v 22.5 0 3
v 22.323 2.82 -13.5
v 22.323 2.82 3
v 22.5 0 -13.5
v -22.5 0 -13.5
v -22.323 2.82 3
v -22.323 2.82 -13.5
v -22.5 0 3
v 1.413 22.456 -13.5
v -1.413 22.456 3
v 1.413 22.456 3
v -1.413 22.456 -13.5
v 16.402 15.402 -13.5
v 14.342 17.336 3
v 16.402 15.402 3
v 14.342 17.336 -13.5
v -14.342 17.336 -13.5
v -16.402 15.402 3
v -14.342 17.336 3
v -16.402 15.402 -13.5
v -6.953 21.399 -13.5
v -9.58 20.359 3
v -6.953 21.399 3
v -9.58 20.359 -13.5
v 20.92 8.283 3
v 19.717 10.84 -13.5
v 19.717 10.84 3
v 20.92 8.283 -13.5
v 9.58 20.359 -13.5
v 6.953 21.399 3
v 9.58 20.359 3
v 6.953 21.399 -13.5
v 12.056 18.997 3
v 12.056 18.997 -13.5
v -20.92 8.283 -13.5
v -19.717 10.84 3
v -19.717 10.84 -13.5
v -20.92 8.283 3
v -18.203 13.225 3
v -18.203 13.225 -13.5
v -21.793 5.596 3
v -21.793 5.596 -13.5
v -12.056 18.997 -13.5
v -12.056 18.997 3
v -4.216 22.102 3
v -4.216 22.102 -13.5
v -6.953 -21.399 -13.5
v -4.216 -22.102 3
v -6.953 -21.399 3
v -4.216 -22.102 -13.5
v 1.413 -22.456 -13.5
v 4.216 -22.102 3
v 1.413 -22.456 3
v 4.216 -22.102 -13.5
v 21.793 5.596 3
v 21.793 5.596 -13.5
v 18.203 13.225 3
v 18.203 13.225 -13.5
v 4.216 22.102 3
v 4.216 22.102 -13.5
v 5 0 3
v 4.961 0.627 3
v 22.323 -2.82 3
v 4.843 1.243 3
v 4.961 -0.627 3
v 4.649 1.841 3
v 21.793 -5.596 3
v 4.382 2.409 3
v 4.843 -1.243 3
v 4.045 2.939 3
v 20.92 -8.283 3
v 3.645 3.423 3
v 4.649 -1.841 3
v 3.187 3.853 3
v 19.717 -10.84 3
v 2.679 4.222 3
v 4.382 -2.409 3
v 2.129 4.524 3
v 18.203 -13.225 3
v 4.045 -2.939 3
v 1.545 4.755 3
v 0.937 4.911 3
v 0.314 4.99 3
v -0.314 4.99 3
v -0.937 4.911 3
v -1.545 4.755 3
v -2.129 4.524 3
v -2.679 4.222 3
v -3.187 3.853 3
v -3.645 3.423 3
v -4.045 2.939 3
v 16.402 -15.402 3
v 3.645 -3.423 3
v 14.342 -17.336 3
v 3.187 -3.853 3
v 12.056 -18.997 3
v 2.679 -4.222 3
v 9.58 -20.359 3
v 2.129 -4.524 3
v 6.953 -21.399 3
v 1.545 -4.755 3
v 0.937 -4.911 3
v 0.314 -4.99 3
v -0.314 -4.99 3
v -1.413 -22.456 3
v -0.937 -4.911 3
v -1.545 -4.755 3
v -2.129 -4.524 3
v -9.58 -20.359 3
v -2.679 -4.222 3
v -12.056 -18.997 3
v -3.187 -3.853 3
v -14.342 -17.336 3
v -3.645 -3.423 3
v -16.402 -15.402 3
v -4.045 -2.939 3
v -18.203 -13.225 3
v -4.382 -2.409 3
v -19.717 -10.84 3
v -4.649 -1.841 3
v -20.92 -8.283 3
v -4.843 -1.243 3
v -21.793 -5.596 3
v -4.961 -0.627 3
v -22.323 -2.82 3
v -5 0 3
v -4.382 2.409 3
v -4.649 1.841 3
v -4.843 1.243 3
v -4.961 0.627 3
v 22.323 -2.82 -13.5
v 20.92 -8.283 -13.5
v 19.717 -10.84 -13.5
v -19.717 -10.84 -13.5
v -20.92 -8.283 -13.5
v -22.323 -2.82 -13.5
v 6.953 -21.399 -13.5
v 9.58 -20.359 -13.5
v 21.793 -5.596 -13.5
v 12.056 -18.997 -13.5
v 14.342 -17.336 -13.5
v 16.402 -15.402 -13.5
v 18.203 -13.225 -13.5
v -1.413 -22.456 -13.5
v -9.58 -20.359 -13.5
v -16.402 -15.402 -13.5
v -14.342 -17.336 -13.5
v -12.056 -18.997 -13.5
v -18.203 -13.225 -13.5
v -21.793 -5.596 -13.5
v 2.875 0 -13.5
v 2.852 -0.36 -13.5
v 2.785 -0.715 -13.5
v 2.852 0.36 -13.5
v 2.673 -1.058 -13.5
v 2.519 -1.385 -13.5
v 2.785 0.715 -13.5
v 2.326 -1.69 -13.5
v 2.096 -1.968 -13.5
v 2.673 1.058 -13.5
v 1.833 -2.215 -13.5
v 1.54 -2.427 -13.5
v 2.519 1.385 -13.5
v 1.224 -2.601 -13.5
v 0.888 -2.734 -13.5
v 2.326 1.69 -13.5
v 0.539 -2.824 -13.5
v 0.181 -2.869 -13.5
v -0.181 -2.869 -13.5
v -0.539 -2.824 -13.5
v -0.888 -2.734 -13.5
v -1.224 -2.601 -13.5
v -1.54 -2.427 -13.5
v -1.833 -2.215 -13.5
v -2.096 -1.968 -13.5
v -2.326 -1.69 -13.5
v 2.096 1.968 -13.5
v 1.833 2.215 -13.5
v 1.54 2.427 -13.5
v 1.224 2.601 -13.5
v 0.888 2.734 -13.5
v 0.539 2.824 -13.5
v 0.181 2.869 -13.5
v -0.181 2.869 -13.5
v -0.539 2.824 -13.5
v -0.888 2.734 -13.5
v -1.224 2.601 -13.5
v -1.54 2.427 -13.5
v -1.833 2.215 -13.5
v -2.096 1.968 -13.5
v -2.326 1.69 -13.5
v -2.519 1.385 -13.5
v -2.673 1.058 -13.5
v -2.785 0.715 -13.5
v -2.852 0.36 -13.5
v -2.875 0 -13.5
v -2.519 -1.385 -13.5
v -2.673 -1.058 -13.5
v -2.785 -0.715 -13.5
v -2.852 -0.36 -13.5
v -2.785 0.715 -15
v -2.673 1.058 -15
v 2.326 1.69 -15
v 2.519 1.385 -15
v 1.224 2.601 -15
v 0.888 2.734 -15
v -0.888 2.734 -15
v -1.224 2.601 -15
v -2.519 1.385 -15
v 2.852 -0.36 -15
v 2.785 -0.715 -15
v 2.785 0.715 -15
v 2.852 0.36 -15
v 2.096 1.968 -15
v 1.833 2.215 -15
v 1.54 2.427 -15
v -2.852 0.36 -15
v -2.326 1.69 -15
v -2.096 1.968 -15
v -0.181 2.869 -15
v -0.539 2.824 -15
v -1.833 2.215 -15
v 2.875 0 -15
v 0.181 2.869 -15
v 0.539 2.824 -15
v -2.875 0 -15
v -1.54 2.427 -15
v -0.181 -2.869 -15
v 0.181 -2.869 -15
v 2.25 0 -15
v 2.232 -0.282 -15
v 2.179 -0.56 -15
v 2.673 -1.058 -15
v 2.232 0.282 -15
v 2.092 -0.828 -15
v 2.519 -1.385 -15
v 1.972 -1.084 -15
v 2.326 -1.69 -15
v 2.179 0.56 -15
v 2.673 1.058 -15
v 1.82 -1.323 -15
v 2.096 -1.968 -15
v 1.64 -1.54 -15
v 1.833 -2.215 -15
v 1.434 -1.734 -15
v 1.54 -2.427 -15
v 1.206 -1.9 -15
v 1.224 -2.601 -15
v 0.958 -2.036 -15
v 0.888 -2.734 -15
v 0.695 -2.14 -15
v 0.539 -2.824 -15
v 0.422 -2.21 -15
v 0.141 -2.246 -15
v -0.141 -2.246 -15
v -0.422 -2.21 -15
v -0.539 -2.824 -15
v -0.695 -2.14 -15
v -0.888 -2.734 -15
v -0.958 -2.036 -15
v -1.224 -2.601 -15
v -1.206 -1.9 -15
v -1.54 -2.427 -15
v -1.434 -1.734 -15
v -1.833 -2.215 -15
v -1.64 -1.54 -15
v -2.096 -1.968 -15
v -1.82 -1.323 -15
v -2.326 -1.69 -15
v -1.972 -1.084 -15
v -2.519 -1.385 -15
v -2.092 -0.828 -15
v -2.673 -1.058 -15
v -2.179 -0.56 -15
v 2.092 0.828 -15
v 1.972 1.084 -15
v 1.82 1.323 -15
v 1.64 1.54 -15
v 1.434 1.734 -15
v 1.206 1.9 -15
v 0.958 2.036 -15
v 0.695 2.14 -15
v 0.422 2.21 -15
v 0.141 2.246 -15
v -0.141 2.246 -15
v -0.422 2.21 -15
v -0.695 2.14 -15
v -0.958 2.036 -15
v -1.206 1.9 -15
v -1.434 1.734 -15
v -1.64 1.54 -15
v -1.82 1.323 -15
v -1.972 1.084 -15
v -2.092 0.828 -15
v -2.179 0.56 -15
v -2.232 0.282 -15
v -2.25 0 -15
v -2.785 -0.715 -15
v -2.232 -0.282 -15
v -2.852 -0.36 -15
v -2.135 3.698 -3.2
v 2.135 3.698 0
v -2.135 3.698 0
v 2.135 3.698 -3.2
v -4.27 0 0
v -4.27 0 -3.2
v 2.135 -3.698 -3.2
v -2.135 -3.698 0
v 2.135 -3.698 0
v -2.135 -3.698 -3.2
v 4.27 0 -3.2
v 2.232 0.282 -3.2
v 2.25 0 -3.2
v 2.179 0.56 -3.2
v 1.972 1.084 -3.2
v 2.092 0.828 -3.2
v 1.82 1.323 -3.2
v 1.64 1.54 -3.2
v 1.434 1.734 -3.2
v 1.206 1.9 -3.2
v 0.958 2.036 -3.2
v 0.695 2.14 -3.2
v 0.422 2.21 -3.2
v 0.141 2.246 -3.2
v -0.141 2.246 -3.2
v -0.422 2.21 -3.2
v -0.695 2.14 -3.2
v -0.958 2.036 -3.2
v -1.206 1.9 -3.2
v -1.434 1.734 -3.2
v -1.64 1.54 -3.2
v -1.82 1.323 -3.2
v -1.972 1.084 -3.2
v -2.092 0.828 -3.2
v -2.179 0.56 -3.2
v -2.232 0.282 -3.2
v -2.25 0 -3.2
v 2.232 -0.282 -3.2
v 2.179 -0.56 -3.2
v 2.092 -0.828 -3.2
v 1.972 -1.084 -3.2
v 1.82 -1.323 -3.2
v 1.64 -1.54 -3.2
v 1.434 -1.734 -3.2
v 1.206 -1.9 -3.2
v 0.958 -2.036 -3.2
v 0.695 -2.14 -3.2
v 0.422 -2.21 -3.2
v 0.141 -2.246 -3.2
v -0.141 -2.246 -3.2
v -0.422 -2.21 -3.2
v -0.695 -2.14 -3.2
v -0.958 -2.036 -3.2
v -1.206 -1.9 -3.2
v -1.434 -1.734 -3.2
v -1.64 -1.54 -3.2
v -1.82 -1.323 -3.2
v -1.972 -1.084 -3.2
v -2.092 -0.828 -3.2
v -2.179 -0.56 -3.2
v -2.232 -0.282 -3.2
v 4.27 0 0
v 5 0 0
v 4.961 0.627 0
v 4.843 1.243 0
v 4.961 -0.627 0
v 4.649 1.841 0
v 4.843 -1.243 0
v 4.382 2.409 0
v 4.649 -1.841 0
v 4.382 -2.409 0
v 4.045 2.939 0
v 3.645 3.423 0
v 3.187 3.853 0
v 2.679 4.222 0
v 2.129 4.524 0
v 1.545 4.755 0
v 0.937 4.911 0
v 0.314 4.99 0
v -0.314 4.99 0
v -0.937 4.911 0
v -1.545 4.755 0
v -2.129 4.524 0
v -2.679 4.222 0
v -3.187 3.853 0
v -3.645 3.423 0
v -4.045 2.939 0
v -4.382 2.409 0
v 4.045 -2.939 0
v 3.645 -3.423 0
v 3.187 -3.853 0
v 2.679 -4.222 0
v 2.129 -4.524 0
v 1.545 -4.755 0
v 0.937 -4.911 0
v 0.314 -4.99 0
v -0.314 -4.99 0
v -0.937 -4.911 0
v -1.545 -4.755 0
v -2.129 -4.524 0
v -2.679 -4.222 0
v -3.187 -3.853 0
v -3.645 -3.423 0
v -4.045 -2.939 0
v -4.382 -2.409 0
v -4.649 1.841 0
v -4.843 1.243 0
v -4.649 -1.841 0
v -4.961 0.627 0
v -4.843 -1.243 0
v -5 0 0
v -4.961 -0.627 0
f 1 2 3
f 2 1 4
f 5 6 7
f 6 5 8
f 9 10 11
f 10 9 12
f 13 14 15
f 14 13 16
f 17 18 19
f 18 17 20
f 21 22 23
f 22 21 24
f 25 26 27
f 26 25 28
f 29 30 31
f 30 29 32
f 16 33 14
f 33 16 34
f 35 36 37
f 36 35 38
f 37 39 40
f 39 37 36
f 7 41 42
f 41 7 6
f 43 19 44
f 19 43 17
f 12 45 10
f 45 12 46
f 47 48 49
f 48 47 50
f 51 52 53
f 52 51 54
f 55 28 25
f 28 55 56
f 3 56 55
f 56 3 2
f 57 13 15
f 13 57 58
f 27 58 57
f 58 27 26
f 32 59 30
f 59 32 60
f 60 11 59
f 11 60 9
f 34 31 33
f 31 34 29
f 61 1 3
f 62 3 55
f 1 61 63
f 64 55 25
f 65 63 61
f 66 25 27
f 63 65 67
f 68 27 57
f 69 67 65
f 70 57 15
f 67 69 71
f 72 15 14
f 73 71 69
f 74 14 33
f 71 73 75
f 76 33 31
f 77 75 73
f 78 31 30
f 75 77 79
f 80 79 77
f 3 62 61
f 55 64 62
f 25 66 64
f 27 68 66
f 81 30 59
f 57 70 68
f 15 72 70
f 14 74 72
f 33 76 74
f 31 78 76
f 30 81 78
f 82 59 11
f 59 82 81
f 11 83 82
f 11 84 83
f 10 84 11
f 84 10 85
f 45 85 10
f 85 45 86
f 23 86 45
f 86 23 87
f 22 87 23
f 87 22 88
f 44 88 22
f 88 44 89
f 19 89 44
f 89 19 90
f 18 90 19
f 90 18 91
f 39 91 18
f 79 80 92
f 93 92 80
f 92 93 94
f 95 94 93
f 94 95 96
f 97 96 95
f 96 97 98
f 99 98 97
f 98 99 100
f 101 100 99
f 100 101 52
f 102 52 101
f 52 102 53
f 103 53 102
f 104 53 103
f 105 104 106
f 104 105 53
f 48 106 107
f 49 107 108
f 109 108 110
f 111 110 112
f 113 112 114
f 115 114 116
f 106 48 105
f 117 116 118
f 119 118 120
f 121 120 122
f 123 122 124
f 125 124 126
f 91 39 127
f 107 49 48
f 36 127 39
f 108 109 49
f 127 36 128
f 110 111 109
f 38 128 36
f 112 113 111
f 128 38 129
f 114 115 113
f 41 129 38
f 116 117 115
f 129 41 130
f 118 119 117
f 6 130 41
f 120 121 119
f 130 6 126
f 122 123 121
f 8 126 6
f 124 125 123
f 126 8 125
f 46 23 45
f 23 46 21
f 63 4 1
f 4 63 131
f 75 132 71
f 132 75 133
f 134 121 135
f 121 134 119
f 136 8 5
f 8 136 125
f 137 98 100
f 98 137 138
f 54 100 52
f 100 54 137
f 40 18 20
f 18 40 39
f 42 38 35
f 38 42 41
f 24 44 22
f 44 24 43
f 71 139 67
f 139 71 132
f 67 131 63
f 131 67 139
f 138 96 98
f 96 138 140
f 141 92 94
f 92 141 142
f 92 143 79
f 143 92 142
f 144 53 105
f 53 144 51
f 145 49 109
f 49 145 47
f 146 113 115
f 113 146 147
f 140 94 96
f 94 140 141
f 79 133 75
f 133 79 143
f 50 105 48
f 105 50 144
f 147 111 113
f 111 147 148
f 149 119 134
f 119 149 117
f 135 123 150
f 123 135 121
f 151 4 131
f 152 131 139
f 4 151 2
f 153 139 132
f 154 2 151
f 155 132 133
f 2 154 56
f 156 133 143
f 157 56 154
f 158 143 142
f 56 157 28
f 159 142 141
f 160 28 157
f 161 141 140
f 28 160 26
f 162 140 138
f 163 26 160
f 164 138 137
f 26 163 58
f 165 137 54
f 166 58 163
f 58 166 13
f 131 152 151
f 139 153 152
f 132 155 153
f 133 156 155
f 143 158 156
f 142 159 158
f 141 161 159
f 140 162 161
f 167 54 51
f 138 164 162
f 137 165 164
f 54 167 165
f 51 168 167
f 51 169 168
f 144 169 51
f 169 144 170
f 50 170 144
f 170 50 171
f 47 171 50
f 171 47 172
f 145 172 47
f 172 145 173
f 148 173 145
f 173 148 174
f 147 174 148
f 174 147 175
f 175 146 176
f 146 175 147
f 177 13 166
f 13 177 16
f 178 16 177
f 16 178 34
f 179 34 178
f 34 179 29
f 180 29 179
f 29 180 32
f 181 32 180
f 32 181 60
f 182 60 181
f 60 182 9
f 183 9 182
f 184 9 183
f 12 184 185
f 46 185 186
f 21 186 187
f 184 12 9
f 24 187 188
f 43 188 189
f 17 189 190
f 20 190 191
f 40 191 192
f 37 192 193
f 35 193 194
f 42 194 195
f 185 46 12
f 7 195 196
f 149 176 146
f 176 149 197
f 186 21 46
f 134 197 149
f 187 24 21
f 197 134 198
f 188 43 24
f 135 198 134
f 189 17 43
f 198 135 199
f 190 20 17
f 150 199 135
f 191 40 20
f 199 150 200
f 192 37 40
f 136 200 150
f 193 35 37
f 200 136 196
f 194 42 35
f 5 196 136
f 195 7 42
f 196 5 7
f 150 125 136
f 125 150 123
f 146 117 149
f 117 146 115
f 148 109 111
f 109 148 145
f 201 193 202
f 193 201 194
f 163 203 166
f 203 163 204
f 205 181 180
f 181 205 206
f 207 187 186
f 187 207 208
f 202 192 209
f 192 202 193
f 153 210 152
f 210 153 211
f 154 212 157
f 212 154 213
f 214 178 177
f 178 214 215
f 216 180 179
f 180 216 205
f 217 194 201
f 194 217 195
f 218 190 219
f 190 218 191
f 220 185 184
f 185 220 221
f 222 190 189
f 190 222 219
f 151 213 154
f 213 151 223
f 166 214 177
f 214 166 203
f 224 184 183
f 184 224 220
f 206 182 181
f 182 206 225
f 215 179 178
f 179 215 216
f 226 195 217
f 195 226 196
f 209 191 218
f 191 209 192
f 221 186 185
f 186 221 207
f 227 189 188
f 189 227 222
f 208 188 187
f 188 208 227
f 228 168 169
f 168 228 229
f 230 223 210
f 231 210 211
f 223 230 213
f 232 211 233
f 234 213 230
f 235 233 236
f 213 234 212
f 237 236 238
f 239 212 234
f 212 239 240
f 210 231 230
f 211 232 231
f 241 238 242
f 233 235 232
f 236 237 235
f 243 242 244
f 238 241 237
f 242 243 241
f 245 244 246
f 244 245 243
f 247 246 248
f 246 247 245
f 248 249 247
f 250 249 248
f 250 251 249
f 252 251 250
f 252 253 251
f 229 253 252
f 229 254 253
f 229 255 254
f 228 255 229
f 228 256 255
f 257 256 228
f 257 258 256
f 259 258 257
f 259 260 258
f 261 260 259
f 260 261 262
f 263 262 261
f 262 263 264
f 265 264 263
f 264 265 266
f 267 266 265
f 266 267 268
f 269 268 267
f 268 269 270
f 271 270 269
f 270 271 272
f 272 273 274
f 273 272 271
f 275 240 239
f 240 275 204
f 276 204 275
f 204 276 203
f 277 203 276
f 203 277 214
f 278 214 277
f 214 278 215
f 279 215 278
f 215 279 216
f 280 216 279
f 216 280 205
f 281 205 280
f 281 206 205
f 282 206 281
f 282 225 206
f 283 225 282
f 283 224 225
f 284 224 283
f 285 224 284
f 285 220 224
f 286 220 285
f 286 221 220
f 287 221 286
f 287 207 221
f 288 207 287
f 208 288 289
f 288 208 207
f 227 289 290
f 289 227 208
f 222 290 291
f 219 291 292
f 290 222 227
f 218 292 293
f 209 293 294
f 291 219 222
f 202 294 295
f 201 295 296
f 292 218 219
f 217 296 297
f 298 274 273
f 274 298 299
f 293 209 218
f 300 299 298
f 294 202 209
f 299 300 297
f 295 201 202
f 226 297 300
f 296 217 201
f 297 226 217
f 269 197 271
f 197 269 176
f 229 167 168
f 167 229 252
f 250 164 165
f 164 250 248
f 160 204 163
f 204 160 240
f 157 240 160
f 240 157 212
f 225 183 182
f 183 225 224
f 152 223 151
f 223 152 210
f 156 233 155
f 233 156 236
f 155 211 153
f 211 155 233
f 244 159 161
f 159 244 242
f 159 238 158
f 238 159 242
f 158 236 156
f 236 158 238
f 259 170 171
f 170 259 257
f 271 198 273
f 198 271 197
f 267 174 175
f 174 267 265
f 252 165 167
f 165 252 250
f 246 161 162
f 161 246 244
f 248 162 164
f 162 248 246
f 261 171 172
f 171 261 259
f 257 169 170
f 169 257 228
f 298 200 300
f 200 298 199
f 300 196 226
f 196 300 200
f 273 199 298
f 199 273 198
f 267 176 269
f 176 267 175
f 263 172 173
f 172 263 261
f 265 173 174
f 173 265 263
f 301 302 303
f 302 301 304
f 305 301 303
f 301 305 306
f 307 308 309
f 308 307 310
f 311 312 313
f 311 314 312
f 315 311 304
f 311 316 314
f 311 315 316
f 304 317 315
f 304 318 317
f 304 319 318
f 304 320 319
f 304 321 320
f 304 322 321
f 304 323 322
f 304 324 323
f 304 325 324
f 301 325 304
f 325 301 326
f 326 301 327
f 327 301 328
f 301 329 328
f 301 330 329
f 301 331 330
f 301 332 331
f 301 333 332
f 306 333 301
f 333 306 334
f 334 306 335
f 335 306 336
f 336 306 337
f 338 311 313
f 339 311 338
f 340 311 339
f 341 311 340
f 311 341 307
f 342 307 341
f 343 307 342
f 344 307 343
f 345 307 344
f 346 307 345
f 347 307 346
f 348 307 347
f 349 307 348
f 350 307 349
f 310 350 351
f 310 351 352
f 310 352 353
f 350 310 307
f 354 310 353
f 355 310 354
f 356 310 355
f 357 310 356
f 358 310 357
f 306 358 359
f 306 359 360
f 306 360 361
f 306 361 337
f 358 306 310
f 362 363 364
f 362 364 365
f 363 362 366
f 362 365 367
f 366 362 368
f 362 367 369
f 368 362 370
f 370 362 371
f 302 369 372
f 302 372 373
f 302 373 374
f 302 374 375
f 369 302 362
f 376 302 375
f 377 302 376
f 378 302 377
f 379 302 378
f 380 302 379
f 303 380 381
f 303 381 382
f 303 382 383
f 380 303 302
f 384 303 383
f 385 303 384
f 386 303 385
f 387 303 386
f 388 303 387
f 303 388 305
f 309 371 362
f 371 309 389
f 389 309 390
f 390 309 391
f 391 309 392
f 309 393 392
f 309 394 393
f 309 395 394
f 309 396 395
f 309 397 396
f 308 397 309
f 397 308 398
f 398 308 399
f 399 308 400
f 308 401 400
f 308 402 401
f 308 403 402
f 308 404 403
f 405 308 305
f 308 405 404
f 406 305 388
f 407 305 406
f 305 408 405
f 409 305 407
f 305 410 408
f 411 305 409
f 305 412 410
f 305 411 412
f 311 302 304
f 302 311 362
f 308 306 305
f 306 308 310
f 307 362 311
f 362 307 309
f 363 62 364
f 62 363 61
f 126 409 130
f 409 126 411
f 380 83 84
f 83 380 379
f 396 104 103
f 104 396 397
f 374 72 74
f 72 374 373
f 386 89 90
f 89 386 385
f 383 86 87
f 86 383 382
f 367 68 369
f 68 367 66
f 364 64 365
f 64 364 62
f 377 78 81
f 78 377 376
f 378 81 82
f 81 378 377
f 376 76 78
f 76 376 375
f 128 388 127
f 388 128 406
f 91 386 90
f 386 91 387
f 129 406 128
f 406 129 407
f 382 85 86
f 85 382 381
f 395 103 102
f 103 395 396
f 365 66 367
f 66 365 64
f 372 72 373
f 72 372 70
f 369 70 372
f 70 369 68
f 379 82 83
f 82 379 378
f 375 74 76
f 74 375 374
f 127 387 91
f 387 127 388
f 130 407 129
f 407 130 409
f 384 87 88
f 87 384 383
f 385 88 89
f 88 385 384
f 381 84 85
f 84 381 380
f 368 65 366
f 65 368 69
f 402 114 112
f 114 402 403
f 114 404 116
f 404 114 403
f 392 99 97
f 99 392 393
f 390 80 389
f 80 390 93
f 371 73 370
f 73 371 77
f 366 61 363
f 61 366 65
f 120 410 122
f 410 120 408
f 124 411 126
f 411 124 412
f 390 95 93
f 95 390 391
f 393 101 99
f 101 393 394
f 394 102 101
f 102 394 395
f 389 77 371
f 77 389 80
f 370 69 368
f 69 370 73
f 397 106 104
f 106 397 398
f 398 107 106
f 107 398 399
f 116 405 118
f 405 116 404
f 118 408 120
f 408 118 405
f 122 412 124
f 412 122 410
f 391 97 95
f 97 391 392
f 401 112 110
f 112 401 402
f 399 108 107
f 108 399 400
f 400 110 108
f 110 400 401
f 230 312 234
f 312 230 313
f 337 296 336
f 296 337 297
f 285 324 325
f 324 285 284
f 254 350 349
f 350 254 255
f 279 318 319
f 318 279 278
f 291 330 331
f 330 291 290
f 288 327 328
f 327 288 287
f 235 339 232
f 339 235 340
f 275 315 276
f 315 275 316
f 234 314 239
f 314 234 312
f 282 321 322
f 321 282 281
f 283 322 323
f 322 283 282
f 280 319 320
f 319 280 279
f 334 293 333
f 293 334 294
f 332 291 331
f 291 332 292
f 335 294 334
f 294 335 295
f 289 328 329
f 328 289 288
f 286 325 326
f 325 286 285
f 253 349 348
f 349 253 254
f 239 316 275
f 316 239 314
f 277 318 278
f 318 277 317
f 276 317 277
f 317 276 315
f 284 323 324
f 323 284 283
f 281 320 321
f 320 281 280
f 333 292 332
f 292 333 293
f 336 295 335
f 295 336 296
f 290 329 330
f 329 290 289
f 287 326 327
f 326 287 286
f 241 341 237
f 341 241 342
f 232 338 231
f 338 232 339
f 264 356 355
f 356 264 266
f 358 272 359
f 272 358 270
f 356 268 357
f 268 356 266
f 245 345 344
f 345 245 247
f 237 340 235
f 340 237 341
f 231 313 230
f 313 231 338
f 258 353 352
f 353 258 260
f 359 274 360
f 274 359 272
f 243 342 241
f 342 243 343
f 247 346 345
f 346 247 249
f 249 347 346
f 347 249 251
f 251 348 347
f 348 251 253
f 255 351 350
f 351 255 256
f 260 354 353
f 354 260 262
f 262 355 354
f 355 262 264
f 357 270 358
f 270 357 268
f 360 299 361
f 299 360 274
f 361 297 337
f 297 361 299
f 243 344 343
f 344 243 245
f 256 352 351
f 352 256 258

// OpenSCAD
$fn = 50;


difference() {
	union() {
		translate(v = [0, 0, -13.5000000000]) {
			cylinder(h = 16.5000000000, r = 22.5000000000);
		}
		#translate(v = [0, 0, -15.0000000000]) {
			cylinder(h = 15, r = 2.8750000000);
		}
	}
	union() {
		translate(v = [0, 0, 0]) {
			rotate(a = [0, 0, 0]) {
				difference() {
					union() {
						translate(v = [0, 0, -3.2000000000]) {
							linear_extrude(height = 3.2000000000) {
								polygon(points = [[4.2698000000, 0.0000000000], [2.1349000000, 3.6977552691], [-2.1349000000, 3.6977552691], [-4.2698000000, 0.0000000000], [-2.1349000000, -3.6977552691], [2.1349000000, -3.6977552691]]);
							}
						}
					}
					union();
				}
			}
		}
		#cylinder(h = 3, r = 5.0000000000);
		#translate(v = [0, 0, -100.0000000000]) {
			cylinder(h = 200, r = 2.2500000000);
		}
	}
}
